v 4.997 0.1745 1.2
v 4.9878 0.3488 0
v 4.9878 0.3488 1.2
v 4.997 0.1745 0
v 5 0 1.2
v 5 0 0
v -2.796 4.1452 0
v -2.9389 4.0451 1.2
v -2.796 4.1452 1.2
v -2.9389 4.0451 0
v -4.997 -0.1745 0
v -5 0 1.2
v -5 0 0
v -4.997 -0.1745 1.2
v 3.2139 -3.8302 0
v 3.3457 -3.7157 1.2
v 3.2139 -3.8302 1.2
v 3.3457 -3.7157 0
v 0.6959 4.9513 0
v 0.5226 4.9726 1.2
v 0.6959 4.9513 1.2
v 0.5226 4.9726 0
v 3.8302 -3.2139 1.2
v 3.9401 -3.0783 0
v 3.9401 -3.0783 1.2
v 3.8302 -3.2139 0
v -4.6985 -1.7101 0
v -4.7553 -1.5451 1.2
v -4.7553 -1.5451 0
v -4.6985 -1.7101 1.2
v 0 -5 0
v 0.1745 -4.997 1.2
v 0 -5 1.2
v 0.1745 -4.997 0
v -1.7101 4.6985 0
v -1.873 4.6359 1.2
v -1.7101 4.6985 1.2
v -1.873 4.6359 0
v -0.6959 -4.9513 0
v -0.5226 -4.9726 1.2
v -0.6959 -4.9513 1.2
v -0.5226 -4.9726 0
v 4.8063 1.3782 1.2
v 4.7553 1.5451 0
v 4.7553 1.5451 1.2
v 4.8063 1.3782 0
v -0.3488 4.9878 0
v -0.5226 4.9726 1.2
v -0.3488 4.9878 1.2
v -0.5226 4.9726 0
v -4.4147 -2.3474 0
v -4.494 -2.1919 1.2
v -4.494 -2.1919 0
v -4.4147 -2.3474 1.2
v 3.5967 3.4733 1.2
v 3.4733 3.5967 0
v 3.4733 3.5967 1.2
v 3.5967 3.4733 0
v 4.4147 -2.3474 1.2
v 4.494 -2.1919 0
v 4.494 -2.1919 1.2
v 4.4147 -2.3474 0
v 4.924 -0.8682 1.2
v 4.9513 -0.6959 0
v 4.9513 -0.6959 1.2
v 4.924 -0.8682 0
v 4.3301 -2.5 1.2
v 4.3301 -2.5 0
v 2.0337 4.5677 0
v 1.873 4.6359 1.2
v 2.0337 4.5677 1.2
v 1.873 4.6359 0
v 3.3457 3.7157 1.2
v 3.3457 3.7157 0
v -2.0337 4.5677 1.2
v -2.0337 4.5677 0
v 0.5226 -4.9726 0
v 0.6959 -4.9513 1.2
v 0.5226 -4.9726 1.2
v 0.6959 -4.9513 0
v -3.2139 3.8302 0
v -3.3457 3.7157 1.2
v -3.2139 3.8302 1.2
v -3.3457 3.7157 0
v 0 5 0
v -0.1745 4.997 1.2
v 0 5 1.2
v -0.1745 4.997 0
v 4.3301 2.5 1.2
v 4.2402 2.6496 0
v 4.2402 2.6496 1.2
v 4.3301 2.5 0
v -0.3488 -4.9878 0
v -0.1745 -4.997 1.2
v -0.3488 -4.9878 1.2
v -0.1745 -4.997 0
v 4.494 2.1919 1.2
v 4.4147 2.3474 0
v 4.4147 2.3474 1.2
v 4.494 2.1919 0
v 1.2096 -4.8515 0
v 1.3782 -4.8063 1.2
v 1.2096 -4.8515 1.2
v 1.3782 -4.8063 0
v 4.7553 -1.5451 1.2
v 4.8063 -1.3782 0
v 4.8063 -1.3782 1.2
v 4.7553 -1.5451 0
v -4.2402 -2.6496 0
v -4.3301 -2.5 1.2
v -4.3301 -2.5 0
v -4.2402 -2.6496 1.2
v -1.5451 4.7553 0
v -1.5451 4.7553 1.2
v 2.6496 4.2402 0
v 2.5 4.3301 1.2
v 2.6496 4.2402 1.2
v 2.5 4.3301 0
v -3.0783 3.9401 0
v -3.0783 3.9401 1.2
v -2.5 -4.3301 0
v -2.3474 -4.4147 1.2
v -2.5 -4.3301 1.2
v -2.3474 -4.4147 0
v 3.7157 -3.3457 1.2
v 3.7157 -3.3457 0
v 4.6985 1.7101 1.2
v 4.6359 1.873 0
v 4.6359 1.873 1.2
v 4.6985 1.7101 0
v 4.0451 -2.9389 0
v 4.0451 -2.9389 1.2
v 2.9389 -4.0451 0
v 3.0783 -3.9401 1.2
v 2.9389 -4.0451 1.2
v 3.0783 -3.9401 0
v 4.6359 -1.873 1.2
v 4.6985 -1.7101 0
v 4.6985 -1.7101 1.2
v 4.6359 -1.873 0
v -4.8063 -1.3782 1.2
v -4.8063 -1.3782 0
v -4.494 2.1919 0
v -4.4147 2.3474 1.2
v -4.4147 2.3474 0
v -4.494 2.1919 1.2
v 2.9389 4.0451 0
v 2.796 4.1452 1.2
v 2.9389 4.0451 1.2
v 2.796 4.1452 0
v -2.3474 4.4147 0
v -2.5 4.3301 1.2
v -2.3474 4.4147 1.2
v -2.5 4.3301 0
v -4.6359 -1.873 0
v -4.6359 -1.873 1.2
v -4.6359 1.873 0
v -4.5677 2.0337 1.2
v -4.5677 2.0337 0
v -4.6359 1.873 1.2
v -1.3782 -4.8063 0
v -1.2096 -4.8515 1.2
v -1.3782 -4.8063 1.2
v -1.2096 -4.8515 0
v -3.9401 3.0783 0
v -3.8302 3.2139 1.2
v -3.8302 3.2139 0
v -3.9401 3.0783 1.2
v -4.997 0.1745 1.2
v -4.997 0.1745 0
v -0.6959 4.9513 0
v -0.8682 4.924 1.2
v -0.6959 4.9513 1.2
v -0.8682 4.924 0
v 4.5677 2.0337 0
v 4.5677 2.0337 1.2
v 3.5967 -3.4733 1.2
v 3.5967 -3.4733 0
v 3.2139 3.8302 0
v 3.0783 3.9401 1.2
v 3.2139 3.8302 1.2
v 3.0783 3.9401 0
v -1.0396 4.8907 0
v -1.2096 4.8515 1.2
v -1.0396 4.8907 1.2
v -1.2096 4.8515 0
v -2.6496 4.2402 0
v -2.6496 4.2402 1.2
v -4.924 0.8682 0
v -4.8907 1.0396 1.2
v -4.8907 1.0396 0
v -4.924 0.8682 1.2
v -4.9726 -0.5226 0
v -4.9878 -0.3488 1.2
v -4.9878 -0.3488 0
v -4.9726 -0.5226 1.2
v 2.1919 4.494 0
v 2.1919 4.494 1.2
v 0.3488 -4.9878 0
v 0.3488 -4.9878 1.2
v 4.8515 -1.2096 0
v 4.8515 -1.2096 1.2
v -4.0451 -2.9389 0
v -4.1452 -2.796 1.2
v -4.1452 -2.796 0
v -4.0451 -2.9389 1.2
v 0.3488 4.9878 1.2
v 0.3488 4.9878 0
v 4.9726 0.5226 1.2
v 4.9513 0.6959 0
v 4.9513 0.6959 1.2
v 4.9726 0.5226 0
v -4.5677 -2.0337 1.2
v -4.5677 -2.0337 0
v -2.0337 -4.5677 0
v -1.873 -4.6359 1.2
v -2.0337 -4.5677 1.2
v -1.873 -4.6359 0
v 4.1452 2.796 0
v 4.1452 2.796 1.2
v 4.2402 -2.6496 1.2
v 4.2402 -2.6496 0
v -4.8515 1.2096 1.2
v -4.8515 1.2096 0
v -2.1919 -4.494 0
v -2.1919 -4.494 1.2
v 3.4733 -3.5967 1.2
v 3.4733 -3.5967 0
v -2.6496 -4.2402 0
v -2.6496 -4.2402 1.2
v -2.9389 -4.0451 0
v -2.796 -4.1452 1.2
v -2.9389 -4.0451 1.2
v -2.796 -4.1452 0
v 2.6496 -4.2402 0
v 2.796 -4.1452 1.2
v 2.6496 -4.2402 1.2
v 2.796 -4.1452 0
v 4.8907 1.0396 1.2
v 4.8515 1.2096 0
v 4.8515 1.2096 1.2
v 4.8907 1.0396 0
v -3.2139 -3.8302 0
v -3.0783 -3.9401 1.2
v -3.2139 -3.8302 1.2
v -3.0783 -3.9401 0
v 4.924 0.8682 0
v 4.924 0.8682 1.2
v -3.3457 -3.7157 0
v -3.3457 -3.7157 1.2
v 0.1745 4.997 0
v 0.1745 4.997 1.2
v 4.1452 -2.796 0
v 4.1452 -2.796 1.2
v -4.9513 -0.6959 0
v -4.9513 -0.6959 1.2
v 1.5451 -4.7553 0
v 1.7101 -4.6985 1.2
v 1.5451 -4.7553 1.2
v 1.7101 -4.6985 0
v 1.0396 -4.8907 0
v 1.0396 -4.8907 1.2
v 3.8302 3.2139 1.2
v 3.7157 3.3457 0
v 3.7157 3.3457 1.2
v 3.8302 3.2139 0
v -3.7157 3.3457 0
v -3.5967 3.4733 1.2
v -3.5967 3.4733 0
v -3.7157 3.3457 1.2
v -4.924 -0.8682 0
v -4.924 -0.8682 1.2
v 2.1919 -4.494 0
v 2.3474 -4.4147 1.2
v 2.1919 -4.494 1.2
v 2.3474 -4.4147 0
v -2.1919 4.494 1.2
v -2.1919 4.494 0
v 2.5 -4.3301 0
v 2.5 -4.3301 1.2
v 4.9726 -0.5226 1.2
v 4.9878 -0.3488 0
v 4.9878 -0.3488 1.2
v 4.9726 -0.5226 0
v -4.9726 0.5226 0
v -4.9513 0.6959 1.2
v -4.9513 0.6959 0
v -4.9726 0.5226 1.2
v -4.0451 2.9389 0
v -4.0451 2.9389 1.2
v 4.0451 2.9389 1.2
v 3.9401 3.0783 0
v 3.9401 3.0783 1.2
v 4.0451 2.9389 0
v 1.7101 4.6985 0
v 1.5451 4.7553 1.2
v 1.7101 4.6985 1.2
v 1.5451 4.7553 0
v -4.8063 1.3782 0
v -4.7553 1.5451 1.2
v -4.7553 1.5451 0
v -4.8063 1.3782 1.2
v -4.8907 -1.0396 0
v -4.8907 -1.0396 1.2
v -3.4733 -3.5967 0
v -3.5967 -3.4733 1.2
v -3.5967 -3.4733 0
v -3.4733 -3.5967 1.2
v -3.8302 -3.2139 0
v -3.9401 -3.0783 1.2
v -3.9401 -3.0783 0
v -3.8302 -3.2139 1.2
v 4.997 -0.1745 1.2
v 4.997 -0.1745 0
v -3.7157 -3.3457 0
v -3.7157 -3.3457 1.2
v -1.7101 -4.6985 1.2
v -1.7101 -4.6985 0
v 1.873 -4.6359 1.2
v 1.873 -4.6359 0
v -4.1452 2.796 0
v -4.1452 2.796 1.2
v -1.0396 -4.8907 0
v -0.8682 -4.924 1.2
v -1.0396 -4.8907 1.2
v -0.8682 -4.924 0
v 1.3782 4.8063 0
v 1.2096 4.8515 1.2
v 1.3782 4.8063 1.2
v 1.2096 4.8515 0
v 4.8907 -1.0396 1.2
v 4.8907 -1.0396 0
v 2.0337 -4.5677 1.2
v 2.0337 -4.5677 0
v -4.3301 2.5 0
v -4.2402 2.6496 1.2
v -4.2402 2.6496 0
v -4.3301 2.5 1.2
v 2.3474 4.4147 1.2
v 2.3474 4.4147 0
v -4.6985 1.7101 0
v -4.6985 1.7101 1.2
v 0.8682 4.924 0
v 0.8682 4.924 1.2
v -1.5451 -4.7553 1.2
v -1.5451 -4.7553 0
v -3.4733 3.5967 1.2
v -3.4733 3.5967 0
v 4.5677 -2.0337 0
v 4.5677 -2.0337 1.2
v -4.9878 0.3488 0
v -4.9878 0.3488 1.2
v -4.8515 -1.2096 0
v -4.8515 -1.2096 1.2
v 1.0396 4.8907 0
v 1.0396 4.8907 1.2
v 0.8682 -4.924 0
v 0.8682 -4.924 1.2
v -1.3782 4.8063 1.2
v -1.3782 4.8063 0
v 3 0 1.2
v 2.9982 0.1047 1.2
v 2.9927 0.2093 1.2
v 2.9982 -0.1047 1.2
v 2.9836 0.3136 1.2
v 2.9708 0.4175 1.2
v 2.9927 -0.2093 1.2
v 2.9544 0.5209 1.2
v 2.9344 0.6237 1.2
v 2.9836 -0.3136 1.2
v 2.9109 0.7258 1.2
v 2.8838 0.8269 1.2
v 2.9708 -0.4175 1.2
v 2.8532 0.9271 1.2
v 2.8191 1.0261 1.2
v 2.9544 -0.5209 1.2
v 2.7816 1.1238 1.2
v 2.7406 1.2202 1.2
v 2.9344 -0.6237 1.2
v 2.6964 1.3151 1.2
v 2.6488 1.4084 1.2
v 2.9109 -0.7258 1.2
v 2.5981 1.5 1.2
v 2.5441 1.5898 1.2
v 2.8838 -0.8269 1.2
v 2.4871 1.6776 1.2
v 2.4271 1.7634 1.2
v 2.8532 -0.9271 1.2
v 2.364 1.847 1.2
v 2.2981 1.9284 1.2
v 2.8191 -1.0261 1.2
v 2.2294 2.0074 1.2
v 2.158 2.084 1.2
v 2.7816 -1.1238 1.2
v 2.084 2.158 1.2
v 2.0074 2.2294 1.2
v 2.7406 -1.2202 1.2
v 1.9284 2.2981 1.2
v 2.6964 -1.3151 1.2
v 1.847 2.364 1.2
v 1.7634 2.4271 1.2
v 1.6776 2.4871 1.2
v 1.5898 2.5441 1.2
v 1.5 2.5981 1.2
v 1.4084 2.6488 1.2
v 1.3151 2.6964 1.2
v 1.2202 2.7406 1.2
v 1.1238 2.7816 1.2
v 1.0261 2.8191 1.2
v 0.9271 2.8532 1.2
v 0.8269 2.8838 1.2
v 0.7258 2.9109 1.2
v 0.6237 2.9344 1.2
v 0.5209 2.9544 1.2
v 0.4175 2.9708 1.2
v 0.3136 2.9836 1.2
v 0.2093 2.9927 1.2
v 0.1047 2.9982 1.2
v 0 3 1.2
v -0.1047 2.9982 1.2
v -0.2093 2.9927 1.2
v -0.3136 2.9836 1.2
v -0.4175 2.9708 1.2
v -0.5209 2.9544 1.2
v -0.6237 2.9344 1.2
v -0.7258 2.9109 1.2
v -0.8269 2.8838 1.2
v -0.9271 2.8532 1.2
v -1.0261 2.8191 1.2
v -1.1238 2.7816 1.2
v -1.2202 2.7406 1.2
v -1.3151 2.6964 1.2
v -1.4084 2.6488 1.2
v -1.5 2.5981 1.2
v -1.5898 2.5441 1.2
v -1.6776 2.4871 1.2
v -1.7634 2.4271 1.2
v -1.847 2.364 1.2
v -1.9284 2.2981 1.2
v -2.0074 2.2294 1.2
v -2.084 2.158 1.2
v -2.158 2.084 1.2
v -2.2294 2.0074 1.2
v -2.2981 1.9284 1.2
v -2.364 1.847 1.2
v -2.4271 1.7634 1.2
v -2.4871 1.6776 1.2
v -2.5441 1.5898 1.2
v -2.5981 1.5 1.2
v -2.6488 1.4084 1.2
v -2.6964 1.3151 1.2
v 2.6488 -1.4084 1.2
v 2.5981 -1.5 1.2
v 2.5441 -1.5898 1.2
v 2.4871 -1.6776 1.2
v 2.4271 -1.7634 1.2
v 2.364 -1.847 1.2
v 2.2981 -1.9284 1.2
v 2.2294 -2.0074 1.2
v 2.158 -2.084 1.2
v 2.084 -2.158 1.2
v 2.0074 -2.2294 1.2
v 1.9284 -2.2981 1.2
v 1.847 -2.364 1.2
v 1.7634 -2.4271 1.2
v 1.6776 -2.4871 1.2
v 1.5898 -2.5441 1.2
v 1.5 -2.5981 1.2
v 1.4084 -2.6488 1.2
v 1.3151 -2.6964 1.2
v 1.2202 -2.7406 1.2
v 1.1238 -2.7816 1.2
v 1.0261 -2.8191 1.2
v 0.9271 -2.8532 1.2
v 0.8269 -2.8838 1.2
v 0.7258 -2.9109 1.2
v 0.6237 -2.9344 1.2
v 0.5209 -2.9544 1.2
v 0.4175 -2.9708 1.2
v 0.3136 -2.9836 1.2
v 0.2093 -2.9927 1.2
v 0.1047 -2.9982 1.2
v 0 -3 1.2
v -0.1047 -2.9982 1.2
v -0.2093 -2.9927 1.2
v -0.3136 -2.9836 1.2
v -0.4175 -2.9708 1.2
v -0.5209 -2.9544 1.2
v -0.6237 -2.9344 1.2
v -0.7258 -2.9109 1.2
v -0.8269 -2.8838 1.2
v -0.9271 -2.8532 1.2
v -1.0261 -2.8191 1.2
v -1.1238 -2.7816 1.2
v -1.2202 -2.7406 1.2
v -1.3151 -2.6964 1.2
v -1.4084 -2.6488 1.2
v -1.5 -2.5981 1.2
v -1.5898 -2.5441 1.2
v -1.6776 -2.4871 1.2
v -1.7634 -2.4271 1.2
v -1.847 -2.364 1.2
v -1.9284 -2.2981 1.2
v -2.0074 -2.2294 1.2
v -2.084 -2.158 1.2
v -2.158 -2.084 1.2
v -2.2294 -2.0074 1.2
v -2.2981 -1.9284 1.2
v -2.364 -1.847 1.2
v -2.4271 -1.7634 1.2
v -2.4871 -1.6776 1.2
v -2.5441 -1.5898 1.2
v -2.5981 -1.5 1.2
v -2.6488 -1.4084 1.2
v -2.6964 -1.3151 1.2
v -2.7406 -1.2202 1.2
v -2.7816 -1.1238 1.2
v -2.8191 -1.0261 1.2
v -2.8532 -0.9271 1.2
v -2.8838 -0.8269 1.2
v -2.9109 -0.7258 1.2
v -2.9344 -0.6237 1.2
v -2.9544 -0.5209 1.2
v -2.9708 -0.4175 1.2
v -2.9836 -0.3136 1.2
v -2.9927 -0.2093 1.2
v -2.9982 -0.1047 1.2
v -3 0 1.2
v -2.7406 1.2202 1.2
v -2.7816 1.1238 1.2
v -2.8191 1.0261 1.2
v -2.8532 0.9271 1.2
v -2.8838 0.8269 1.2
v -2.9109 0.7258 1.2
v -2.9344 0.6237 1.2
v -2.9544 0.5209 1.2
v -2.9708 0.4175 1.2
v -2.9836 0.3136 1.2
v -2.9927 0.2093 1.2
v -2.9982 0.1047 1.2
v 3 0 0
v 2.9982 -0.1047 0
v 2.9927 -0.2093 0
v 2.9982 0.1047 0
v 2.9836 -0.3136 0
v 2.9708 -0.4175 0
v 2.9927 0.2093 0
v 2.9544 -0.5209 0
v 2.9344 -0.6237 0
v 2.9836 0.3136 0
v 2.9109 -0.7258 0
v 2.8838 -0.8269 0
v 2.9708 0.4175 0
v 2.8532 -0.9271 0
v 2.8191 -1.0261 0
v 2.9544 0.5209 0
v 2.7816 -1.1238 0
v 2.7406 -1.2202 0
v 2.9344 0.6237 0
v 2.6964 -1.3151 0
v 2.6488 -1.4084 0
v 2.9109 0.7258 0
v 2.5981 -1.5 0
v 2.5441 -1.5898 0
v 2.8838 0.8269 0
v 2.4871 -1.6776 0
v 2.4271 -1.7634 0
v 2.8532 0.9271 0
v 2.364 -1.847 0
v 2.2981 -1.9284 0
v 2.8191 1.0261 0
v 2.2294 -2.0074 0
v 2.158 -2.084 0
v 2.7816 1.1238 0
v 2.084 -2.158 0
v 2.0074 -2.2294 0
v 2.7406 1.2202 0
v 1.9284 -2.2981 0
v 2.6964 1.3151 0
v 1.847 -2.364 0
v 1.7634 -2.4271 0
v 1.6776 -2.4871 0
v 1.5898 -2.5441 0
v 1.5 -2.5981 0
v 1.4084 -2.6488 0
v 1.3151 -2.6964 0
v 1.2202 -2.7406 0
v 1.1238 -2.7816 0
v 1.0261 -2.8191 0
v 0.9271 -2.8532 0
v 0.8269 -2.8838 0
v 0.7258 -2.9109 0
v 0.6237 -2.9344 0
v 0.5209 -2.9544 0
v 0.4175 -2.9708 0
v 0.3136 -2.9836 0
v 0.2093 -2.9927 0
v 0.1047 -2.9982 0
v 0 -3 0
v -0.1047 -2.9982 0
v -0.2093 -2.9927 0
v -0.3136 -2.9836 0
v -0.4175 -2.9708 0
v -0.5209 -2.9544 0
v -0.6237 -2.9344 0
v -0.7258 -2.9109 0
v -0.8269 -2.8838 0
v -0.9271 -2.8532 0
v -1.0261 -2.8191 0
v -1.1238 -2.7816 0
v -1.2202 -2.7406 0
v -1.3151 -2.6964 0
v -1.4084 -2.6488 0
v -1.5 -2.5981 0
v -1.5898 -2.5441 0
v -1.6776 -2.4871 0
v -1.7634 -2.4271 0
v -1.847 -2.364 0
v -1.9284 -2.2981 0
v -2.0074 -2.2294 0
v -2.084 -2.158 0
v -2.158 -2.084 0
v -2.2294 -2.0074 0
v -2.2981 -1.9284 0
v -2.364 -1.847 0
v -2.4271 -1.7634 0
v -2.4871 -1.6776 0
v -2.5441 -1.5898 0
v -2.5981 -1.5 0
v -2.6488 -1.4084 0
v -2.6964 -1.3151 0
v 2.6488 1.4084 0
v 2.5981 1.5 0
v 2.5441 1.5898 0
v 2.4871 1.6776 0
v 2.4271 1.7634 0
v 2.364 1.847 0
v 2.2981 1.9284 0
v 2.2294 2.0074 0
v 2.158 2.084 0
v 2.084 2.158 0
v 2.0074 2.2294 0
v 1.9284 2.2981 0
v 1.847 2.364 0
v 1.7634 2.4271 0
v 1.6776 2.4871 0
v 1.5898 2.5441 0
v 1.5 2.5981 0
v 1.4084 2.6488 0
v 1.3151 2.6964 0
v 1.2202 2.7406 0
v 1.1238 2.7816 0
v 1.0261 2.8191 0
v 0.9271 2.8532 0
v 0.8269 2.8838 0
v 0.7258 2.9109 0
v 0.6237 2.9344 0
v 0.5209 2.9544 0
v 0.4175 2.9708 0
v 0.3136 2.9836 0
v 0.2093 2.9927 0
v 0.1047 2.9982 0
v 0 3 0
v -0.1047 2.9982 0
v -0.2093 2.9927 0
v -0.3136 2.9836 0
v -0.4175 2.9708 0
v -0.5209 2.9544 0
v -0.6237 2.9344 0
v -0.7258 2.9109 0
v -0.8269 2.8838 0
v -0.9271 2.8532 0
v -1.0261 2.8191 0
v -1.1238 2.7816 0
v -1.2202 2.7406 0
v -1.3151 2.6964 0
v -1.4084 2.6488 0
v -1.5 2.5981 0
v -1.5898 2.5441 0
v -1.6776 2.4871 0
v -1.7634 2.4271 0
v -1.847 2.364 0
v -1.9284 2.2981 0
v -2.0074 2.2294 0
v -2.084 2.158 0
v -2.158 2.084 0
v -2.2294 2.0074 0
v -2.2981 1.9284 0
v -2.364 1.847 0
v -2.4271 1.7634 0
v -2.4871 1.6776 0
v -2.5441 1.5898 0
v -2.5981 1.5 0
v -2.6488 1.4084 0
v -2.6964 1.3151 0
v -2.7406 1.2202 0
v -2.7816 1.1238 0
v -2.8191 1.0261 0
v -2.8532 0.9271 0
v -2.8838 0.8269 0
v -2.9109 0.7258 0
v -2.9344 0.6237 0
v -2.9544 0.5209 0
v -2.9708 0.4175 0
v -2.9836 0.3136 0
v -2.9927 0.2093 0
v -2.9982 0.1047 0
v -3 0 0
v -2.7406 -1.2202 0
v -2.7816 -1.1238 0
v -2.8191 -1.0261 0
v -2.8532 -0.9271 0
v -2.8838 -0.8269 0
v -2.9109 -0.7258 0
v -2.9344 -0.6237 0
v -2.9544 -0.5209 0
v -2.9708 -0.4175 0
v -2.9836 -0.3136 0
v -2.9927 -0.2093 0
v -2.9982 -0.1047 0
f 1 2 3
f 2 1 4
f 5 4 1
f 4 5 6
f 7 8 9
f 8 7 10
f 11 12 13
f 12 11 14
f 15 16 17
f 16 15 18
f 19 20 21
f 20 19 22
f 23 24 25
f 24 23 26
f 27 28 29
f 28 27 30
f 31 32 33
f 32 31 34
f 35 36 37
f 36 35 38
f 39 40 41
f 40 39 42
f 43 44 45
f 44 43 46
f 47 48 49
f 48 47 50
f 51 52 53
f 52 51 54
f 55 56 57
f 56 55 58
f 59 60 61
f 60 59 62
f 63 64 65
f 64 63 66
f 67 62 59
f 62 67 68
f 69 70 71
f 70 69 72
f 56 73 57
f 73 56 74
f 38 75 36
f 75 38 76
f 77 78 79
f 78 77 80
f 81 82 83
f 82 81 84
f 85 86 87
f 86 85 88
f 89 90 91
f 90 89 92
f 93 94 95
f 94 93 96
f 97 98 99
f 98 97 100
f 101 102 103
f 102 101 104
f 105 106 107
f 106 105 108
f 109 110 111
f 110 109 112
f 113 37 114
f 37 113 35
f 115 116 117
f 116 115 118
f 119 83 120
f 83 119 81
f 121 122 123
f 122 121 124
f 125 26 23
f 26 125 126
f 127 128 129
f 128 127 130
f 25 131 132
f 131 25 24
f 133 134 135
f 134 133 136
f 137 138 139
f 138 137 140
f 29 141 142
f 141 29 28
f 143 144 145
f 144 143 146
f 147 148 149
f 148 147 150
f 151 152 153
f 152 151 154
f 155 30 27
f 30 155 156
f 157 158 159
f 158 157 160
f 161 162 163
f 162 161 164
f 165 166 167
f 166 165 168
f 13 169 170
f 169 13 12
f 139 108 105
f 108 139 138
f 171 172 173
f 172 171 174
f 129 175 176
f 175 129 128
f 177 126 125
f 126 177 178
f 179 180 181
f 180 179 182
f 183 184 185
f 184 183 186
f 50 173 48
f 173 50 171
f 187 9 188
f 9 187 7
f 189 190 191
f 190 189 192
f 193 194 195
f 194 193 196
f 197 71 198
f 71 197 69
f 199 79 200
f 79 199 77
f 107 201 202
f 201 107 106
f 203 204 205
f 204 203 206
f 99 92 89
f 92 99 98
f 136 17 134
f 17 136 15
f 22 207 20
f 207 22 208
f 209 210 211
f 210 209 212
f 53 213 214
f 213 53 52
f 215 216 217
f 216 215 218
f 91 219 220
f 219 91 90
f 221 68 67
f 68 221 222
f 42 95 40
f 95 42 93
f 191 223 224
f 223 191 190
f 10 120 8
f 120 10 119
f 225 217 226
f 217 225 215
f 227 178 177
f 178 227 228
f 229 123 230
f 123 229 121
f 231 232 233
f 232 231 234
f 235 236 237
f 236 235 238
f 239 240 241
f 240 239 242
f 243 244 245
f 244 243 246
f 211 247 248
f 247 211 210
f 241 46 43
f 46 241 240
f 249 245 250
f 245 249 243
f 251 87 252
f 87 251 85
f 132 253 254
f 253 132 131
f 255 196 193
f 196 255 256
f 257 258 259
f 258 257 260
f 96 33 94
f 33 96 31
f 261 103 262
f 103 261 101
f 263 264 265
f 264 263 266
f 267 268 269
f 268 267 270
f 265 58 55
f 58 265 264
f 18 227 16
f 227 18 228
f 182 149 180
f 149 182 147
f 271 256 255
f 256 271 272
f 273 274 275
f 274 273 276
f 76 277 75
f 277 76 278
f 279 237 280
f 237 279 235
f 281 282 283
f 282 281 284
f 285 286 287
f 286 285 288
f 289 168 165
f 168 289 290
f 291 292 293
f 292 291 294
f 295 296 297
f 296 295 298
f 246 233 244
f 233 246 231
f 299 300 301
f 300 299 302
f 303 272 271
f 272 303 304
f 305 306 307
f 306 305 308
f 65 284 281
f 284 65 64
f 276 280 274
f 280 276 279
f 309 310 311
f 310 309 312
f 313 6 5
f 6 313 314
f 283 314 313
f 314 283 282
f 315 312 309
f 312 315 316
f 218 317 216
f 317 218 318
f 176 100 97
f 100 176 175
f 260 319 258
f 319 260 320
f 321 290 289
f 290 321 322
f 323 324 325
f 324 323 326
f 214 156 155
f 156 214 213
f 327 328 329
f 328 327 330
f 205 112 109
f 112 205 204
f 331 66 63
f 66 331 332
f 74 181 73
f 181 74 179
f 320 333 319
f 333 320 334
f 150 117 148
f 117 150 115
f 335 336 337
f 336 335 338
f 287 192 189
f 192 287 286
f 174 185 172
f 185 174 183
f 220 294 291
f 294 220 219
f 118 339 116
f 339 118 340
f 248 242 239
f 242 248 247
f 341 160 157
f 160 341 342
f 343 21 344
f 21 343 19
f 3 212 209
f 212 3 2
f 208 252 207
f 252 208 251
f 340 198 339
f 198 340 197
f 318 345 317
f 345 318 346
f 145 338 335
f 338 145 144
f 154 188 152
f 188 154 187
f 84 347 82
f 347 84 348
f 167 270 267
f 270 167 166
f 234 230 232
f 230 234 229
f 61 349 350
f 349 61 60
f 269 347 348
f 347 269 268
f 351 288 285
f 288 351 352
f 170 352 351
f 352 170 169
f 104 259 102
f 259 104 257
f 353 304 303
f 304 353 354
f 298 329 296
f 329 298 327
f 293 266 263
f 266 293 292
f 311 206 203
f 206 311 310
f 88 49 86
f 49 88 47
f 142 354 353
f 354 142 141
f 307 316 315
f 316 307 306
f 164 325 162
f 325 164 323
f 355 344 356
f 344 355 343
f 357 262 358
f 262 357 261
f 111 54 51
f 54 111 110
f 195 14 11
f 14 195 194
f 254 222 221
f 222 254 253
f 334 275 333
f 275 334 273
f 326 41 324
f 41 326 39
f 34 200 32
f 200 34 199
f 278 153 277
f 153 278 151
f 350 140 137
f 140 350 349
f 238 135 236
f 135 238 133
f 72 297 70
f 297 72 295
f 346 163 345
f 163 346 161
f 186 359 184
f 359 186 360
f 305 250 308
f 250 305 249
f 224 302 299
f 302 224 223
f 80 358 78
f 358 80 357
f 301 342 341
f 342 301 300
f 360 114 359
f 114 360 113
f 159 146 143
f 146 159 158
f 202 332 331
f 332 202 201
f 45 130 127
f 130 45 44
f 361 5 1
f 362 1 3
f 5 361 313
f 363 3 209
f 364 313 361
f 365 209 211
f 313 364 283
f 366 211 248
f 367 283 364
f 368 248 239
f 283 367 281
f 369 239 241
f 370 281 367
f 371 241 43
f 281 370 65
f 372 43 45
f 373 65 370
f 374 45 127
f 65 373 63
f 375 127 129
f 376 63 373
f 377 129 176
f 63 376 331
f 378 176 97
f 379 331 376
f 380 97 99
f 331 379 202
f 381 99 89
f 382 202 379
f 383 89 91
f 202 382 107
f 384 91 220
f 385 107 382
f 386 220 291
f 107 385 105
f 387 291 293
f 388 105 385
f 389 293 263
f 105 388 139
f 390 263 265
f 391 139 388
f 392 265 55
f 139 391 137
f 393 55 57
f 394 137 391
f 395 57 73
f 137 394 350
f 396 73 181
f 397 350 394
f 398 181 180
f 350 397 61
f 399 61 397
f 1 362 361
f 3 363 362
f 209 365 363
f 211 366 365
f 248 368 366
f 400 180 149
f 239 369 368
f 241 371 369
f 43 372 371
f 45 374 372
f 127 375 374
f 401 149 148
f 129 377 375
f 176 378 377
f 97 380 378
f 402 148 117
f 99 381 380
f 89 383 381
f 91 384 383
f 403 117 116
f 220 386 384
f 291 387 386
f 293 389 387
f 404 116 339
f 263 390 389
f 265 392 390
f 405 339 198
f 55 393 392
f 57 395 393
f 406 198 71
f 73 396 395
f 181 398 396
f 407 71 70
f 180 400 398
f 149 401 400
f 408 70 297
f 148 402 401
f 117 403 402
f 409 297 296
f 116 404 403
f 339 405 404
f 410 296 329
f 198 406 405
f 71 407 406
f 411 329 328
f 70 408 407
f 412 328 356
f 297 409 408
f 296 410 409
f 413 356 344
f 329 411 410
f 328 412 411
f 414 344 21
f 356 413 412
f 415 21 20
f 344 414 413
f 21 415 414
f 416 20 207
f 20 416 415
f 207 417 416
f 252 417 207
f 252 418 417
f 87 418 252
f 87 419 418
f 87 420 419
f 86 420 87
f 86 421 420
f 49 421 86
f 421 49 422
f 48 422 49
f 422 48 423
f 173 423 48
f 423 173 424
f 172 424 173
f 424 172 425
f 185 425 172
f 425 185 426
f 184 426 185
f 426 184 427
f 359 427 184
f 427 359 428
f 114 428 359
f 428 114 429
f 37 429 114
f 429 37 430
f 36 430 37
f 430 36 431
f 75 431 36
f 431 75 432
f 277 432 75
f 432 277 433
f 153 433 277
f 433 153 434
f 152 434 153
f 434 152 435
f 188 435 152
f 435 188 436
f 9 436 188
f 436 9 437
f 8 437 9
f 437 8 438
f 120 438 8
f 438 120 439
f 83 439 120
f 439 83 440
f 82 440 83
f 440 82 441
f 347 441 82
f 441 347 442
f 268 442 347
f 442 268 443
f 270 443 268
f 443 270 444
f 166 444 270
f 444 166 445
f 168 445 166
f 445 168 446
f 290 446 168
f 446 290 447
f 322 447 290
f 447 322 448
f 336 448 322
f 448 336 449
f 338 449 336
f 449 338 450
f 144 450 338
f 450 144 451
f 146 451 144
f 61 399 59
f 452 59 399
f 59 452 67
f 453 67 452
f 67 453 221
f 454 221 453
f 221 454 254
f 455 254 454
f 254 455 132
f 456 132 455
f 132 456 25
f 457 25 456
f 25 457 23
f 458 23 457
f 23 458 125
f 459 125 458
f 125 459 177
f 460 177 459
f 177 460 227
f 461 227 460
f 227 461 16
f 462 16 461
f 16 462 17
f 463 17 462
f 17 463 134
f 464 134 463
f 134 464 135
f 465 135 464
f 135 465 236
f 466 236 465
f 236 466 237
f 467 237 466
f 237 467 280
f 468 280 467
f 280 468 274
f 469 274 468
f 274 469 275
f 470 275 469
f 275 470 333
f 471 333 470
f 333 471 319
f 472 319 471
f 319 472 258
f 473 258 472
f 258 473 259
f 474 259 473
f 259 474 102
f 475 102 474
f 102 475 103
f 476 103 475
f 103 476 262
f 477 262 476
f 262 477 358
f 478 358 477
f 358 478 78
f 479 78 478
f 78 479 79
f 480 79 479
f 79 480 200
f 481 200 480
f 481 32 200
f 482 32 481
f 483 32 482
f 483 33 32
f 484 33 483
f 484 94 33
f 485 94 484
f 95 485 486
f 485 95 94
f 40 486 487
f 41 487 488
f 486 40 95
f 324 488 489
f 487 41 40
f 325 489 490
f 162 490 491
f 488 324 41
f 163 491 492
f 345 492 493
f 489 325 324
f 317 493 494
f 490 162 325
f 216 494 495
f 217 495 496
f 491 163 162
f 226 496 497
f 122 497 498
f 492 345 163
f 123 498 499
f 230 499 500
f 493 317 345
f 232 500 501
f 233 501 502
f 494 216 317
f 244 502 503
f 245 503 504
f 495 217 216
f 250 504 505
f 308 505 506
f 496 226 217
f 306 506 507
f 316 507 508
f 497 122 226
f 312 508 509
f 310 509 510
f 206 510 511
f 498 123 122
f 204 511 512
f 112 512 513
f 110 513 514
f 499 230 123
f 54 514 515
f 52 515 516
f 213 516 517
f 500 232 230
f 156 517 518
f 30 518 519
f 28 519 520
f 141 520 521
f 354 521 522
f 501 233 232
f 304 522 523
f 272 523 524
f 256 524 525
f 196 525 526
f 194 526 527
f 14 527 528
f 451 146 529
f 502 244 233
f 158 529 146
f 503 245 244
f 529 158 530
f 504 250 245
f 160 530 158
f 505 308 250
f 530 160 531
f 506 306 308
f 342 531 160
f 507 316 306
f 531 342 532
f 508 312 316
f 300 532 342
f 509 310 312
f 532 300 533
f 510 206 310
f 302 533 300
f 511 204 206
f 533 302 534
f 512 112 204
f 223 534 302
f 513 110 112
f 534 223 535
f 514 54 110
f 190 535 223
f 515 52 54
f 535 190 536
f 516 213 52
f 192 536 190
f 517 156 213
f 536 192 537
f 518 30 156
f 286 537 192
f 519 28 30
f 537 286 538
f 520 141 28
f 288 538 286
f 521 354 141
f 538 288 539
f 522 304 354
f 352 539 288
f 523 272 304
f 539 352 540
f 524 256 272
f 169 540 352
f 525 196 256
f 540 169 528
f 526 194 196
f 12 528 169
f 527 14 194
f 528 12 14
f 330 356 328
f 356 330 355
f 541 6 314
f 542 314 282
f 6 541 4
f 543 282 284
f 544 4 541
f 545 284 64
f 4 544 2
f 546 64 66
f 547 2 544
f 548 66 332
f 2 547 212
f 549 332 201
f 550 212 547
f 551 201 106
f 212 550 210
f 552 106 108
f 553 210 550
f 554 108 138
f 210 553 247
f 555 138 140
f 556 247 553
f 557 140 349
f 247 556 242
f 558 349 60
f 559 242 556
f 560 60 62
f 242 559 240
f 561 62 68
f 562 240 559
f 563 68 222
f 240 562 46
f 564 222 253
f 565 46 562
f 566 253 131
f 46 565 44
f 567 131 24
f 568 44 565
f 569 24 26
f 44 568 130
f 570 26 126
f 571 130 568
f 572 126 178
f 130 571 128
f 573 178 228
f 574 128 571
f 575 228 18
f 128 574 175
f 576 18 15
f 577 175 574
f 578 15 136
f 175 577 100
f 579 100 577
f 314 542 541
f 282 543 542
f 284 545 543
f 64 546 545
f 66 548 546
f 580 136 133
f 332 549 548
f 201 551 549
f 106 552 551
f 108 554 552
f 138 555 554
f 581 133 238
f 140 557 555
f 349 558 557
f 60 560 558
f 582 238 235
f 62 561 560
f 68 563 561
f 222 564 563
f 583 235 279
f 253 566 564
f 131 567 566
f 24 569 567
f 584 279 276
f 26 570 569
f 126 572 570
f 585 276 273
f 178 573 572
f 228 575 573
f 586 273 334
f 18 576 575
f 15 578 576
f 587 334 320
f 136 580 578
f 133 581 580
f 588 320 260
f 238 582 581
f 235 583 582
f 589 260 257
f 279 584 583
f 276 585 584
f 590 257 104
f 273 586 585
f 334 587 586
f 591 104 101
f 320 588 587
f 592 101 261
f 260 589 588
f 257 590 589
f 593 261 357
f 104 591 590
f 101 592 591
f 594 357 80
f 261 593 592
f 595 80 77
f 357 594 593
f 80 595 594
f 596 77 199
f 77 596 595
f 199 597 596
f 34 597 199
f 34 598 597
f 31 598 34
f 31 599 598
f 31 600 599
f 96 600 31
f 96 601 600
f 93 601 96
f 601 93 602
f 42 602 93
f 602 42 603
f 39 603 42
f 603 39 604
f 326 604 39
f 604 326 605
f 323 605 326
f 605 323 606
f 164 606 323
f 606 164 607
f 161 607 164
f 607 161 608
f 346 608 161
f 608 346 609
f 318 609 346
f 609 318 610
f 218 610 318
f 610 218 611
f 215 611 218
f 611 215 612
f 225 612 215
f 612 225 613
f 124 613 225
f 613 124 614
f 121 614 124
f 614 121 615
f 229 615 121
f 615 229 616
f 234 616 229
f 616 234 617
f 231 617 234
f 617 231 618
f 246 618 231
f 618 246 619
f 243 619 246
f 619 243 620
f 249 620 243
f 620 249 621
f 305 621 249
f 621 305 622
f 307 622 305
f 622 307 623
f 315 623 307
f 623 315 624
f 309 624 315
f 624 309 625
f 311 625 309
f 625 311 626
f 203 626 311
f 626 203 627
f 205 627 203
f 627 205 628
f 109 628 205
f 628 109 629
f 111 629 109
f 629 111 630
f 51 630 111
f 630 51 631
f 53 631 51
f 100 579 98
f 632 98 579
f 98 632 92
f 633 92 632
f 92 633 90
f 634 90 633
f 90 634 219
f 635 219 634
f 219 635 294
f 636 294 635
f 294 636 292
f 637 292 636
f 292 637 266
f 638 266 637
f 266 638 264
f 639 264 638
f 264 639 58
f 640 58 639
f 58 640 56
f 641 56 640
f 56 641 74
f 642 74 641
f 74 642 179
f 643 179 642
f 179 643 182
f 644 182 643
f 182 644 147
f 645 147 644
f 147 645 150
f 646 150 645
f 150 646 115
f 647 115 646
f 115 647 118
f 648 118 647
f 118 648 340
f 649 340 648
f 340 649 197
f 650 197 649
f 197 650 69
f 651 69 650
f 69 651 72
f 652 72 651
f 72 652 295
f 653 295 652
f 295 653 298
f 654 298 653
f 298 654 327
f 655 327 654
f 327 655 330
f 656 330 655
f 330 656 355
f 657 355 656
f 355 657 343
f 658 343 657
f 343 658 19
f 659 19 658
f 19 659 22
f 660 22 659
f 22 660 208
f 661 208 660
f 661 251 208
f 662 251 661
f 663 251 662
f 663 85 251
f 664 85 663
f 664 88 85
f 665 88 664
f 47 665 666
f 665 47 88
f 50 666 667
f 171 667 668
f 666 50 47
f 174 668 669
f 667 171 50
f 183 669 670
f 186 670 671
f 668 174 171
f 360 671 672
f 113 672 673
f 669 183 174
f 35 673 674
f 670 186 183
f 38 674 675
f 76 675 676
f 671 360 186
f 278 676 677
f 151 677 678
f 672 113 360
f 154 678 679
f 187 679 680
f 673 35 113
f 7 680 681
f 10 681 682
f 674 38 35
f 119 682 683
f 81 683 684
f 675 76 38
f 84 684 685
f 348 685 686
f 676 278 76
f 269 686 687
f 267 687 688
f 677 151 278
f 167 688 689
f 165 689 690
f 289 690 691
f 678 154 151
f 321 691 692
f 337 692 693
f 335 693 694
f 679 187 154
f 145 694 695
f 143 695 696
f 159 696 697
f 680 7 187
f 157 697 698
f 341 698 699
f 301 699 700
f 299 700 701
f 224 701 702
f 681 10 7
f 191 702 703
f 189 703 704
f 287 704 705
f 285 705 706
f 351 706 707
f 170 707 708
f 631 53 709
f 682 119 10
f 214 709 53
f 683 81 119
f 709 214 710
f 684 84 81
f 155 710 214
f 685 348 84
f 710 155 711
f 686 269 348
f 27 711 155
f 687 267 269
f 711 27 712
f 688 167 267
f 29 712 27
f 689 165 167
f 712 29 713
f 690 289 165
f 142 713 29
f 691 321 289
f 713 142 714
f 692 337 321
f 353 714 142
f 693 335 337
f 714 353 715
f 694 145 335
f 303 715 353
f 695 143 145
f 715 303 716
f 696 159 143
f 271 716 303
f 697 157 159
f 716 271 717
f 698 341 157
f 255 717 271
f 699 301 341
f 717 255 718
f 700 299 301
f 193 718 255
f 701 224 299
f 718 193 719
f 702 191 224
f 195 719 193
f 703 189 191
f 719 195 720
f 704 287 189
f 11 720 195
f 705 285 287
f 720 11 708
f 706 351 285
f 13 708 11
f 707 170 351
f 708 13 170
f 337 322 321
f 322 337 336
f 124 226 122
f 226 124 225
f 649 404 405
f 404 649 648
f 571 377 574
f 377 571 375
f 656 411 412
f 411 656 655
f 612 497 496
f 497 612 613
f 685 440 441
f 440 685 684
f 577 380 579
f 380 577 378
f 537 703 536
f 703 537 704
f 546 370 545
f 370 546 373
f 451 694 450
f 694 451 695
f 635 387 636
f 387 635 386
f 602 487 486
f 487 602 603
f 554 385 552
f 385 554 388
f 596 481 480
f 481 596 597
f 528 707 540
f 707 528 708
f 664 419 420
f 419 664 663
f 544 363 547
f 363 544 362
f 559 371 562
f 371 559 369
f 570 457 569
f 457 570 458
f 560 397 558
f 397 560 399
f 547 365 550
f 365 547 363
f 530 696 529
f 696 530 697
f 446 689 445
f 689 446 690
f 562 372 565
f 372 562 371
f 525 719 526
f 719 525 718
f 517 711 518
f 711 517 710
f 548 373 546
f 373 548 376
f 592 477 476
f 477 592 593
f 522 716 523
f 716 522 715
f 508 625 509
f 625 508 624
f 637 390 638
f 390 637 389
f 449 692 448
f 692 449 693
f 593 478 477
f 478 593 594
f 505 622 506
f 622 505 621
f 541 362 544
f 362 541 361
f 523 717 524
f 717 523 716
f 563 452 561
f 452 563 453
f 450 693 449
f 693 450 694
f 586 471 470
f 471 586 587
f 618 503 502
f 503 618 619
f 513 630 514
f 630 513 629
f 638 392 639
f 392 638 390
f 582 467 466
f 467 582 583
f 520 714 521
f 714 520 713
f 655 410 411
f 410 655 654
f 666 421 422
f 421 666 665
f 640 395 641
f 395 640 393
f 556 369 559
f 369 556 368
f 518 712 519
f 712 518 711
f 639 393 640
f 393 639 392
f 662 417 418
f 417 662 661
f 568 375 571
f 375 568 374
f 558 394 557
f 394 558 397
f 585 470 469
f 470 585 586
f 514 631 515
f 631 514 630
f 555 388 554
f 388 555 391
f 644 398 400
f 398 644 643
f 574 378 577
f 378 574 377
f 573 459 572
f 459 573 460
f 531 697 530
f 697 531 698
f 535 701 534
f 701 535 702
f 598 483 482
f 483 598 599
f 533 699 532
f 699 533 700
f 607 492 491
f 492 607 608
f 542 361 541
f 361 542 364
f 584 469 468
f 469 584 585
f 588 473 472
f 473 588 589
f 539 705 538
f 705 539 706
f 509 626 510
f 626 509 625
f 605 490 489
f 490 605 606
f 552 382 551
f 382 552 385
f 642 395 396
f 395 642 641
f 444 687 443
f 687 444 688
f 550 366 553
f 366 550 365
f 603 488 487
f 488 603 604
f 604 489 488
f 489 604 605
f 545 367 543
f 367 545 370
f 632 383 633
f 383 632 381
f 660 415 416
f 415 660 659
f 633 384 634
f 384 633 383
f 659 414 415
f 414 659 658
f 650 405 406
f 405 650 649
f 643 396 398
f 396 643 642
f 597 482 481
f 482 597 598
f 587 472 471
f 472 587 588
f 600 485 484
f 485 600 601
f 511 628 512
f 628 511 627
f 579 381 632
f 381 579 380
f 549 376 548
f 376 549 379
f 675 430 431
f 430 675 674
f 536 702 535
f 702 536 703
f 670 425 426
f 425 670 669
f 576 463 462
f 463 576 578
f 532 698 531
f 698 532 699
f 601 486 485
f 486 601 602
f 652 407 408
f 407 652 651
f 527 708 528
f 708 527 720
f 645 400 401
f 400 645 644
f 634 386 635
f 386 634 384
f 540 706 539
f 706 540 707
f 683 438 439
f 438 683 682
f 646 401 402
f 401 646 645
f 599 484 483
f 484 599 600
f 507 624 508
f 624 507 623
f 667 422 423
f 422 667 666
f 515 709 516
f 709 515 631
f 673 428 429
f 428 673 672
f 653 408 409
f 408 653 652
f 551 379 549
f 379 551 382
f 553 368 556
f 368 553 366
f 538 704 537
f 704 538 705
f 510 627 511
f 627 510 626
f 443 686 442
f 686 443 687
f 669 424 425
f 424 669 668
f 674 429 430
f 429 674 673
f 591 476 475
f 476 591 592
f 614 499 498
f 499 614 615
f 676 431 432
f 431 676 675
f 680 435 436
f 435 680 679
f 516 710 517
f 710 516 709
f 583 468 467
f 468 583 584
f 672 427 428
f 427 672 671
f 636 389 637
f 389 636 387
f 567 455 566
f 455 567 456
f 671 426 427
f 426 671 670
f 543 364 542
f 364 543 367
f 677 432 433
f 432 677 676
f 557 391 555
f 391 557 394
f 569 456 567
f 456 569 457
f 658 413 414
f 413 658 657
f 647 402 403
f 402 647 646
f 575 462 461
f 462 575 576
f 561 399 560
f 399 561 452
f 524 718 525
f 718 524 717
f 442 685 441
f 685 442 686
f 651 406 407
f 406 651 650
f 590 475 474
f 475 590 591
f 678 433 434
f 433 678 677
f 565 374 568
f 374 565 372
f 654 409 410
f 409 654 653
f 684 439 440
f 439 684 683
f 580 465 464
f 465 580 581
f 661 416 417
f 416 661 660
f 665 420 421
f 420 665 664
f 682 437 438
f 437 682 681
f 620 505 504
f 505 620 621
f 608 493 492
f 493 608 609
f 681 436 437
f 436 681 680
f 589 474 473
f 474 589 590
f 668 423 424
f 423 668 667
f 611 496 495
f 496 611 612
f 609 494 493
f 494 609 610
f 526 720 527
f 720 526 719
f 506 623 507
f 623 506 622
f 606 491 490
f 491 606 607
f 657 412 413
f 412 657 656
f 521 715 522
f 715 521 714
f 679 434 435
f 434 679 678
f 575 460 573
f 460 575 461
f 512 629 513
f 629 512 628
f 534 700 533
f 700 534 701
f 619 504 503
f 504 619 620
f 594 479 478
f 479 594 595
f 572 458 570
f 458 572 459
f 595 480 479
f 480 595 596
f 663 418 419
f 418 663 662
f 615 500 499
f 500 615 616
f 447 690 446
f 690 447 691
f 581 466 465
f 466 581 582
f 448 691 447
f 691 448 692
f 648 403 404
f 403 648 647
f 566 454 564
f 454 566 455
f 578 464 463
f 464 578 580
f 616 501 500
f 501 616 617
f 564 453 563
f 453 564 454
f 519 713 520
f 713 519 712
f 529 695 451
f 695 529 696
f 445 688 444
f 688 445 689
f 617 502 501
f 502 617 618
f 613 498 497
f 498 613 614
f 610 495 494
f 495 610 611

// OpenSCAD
// print some washers to tighten the loose handle fit
// needed because when using the magnetic feet, they're just a bit too long and the handle is loose. 
height=1.2;
outer=10;
inner=6;
$fn=180;
difference() {
  cylinder( height, outer/2, outer/2 );
  cylinder( height, inner/2, inner/2 );
}
